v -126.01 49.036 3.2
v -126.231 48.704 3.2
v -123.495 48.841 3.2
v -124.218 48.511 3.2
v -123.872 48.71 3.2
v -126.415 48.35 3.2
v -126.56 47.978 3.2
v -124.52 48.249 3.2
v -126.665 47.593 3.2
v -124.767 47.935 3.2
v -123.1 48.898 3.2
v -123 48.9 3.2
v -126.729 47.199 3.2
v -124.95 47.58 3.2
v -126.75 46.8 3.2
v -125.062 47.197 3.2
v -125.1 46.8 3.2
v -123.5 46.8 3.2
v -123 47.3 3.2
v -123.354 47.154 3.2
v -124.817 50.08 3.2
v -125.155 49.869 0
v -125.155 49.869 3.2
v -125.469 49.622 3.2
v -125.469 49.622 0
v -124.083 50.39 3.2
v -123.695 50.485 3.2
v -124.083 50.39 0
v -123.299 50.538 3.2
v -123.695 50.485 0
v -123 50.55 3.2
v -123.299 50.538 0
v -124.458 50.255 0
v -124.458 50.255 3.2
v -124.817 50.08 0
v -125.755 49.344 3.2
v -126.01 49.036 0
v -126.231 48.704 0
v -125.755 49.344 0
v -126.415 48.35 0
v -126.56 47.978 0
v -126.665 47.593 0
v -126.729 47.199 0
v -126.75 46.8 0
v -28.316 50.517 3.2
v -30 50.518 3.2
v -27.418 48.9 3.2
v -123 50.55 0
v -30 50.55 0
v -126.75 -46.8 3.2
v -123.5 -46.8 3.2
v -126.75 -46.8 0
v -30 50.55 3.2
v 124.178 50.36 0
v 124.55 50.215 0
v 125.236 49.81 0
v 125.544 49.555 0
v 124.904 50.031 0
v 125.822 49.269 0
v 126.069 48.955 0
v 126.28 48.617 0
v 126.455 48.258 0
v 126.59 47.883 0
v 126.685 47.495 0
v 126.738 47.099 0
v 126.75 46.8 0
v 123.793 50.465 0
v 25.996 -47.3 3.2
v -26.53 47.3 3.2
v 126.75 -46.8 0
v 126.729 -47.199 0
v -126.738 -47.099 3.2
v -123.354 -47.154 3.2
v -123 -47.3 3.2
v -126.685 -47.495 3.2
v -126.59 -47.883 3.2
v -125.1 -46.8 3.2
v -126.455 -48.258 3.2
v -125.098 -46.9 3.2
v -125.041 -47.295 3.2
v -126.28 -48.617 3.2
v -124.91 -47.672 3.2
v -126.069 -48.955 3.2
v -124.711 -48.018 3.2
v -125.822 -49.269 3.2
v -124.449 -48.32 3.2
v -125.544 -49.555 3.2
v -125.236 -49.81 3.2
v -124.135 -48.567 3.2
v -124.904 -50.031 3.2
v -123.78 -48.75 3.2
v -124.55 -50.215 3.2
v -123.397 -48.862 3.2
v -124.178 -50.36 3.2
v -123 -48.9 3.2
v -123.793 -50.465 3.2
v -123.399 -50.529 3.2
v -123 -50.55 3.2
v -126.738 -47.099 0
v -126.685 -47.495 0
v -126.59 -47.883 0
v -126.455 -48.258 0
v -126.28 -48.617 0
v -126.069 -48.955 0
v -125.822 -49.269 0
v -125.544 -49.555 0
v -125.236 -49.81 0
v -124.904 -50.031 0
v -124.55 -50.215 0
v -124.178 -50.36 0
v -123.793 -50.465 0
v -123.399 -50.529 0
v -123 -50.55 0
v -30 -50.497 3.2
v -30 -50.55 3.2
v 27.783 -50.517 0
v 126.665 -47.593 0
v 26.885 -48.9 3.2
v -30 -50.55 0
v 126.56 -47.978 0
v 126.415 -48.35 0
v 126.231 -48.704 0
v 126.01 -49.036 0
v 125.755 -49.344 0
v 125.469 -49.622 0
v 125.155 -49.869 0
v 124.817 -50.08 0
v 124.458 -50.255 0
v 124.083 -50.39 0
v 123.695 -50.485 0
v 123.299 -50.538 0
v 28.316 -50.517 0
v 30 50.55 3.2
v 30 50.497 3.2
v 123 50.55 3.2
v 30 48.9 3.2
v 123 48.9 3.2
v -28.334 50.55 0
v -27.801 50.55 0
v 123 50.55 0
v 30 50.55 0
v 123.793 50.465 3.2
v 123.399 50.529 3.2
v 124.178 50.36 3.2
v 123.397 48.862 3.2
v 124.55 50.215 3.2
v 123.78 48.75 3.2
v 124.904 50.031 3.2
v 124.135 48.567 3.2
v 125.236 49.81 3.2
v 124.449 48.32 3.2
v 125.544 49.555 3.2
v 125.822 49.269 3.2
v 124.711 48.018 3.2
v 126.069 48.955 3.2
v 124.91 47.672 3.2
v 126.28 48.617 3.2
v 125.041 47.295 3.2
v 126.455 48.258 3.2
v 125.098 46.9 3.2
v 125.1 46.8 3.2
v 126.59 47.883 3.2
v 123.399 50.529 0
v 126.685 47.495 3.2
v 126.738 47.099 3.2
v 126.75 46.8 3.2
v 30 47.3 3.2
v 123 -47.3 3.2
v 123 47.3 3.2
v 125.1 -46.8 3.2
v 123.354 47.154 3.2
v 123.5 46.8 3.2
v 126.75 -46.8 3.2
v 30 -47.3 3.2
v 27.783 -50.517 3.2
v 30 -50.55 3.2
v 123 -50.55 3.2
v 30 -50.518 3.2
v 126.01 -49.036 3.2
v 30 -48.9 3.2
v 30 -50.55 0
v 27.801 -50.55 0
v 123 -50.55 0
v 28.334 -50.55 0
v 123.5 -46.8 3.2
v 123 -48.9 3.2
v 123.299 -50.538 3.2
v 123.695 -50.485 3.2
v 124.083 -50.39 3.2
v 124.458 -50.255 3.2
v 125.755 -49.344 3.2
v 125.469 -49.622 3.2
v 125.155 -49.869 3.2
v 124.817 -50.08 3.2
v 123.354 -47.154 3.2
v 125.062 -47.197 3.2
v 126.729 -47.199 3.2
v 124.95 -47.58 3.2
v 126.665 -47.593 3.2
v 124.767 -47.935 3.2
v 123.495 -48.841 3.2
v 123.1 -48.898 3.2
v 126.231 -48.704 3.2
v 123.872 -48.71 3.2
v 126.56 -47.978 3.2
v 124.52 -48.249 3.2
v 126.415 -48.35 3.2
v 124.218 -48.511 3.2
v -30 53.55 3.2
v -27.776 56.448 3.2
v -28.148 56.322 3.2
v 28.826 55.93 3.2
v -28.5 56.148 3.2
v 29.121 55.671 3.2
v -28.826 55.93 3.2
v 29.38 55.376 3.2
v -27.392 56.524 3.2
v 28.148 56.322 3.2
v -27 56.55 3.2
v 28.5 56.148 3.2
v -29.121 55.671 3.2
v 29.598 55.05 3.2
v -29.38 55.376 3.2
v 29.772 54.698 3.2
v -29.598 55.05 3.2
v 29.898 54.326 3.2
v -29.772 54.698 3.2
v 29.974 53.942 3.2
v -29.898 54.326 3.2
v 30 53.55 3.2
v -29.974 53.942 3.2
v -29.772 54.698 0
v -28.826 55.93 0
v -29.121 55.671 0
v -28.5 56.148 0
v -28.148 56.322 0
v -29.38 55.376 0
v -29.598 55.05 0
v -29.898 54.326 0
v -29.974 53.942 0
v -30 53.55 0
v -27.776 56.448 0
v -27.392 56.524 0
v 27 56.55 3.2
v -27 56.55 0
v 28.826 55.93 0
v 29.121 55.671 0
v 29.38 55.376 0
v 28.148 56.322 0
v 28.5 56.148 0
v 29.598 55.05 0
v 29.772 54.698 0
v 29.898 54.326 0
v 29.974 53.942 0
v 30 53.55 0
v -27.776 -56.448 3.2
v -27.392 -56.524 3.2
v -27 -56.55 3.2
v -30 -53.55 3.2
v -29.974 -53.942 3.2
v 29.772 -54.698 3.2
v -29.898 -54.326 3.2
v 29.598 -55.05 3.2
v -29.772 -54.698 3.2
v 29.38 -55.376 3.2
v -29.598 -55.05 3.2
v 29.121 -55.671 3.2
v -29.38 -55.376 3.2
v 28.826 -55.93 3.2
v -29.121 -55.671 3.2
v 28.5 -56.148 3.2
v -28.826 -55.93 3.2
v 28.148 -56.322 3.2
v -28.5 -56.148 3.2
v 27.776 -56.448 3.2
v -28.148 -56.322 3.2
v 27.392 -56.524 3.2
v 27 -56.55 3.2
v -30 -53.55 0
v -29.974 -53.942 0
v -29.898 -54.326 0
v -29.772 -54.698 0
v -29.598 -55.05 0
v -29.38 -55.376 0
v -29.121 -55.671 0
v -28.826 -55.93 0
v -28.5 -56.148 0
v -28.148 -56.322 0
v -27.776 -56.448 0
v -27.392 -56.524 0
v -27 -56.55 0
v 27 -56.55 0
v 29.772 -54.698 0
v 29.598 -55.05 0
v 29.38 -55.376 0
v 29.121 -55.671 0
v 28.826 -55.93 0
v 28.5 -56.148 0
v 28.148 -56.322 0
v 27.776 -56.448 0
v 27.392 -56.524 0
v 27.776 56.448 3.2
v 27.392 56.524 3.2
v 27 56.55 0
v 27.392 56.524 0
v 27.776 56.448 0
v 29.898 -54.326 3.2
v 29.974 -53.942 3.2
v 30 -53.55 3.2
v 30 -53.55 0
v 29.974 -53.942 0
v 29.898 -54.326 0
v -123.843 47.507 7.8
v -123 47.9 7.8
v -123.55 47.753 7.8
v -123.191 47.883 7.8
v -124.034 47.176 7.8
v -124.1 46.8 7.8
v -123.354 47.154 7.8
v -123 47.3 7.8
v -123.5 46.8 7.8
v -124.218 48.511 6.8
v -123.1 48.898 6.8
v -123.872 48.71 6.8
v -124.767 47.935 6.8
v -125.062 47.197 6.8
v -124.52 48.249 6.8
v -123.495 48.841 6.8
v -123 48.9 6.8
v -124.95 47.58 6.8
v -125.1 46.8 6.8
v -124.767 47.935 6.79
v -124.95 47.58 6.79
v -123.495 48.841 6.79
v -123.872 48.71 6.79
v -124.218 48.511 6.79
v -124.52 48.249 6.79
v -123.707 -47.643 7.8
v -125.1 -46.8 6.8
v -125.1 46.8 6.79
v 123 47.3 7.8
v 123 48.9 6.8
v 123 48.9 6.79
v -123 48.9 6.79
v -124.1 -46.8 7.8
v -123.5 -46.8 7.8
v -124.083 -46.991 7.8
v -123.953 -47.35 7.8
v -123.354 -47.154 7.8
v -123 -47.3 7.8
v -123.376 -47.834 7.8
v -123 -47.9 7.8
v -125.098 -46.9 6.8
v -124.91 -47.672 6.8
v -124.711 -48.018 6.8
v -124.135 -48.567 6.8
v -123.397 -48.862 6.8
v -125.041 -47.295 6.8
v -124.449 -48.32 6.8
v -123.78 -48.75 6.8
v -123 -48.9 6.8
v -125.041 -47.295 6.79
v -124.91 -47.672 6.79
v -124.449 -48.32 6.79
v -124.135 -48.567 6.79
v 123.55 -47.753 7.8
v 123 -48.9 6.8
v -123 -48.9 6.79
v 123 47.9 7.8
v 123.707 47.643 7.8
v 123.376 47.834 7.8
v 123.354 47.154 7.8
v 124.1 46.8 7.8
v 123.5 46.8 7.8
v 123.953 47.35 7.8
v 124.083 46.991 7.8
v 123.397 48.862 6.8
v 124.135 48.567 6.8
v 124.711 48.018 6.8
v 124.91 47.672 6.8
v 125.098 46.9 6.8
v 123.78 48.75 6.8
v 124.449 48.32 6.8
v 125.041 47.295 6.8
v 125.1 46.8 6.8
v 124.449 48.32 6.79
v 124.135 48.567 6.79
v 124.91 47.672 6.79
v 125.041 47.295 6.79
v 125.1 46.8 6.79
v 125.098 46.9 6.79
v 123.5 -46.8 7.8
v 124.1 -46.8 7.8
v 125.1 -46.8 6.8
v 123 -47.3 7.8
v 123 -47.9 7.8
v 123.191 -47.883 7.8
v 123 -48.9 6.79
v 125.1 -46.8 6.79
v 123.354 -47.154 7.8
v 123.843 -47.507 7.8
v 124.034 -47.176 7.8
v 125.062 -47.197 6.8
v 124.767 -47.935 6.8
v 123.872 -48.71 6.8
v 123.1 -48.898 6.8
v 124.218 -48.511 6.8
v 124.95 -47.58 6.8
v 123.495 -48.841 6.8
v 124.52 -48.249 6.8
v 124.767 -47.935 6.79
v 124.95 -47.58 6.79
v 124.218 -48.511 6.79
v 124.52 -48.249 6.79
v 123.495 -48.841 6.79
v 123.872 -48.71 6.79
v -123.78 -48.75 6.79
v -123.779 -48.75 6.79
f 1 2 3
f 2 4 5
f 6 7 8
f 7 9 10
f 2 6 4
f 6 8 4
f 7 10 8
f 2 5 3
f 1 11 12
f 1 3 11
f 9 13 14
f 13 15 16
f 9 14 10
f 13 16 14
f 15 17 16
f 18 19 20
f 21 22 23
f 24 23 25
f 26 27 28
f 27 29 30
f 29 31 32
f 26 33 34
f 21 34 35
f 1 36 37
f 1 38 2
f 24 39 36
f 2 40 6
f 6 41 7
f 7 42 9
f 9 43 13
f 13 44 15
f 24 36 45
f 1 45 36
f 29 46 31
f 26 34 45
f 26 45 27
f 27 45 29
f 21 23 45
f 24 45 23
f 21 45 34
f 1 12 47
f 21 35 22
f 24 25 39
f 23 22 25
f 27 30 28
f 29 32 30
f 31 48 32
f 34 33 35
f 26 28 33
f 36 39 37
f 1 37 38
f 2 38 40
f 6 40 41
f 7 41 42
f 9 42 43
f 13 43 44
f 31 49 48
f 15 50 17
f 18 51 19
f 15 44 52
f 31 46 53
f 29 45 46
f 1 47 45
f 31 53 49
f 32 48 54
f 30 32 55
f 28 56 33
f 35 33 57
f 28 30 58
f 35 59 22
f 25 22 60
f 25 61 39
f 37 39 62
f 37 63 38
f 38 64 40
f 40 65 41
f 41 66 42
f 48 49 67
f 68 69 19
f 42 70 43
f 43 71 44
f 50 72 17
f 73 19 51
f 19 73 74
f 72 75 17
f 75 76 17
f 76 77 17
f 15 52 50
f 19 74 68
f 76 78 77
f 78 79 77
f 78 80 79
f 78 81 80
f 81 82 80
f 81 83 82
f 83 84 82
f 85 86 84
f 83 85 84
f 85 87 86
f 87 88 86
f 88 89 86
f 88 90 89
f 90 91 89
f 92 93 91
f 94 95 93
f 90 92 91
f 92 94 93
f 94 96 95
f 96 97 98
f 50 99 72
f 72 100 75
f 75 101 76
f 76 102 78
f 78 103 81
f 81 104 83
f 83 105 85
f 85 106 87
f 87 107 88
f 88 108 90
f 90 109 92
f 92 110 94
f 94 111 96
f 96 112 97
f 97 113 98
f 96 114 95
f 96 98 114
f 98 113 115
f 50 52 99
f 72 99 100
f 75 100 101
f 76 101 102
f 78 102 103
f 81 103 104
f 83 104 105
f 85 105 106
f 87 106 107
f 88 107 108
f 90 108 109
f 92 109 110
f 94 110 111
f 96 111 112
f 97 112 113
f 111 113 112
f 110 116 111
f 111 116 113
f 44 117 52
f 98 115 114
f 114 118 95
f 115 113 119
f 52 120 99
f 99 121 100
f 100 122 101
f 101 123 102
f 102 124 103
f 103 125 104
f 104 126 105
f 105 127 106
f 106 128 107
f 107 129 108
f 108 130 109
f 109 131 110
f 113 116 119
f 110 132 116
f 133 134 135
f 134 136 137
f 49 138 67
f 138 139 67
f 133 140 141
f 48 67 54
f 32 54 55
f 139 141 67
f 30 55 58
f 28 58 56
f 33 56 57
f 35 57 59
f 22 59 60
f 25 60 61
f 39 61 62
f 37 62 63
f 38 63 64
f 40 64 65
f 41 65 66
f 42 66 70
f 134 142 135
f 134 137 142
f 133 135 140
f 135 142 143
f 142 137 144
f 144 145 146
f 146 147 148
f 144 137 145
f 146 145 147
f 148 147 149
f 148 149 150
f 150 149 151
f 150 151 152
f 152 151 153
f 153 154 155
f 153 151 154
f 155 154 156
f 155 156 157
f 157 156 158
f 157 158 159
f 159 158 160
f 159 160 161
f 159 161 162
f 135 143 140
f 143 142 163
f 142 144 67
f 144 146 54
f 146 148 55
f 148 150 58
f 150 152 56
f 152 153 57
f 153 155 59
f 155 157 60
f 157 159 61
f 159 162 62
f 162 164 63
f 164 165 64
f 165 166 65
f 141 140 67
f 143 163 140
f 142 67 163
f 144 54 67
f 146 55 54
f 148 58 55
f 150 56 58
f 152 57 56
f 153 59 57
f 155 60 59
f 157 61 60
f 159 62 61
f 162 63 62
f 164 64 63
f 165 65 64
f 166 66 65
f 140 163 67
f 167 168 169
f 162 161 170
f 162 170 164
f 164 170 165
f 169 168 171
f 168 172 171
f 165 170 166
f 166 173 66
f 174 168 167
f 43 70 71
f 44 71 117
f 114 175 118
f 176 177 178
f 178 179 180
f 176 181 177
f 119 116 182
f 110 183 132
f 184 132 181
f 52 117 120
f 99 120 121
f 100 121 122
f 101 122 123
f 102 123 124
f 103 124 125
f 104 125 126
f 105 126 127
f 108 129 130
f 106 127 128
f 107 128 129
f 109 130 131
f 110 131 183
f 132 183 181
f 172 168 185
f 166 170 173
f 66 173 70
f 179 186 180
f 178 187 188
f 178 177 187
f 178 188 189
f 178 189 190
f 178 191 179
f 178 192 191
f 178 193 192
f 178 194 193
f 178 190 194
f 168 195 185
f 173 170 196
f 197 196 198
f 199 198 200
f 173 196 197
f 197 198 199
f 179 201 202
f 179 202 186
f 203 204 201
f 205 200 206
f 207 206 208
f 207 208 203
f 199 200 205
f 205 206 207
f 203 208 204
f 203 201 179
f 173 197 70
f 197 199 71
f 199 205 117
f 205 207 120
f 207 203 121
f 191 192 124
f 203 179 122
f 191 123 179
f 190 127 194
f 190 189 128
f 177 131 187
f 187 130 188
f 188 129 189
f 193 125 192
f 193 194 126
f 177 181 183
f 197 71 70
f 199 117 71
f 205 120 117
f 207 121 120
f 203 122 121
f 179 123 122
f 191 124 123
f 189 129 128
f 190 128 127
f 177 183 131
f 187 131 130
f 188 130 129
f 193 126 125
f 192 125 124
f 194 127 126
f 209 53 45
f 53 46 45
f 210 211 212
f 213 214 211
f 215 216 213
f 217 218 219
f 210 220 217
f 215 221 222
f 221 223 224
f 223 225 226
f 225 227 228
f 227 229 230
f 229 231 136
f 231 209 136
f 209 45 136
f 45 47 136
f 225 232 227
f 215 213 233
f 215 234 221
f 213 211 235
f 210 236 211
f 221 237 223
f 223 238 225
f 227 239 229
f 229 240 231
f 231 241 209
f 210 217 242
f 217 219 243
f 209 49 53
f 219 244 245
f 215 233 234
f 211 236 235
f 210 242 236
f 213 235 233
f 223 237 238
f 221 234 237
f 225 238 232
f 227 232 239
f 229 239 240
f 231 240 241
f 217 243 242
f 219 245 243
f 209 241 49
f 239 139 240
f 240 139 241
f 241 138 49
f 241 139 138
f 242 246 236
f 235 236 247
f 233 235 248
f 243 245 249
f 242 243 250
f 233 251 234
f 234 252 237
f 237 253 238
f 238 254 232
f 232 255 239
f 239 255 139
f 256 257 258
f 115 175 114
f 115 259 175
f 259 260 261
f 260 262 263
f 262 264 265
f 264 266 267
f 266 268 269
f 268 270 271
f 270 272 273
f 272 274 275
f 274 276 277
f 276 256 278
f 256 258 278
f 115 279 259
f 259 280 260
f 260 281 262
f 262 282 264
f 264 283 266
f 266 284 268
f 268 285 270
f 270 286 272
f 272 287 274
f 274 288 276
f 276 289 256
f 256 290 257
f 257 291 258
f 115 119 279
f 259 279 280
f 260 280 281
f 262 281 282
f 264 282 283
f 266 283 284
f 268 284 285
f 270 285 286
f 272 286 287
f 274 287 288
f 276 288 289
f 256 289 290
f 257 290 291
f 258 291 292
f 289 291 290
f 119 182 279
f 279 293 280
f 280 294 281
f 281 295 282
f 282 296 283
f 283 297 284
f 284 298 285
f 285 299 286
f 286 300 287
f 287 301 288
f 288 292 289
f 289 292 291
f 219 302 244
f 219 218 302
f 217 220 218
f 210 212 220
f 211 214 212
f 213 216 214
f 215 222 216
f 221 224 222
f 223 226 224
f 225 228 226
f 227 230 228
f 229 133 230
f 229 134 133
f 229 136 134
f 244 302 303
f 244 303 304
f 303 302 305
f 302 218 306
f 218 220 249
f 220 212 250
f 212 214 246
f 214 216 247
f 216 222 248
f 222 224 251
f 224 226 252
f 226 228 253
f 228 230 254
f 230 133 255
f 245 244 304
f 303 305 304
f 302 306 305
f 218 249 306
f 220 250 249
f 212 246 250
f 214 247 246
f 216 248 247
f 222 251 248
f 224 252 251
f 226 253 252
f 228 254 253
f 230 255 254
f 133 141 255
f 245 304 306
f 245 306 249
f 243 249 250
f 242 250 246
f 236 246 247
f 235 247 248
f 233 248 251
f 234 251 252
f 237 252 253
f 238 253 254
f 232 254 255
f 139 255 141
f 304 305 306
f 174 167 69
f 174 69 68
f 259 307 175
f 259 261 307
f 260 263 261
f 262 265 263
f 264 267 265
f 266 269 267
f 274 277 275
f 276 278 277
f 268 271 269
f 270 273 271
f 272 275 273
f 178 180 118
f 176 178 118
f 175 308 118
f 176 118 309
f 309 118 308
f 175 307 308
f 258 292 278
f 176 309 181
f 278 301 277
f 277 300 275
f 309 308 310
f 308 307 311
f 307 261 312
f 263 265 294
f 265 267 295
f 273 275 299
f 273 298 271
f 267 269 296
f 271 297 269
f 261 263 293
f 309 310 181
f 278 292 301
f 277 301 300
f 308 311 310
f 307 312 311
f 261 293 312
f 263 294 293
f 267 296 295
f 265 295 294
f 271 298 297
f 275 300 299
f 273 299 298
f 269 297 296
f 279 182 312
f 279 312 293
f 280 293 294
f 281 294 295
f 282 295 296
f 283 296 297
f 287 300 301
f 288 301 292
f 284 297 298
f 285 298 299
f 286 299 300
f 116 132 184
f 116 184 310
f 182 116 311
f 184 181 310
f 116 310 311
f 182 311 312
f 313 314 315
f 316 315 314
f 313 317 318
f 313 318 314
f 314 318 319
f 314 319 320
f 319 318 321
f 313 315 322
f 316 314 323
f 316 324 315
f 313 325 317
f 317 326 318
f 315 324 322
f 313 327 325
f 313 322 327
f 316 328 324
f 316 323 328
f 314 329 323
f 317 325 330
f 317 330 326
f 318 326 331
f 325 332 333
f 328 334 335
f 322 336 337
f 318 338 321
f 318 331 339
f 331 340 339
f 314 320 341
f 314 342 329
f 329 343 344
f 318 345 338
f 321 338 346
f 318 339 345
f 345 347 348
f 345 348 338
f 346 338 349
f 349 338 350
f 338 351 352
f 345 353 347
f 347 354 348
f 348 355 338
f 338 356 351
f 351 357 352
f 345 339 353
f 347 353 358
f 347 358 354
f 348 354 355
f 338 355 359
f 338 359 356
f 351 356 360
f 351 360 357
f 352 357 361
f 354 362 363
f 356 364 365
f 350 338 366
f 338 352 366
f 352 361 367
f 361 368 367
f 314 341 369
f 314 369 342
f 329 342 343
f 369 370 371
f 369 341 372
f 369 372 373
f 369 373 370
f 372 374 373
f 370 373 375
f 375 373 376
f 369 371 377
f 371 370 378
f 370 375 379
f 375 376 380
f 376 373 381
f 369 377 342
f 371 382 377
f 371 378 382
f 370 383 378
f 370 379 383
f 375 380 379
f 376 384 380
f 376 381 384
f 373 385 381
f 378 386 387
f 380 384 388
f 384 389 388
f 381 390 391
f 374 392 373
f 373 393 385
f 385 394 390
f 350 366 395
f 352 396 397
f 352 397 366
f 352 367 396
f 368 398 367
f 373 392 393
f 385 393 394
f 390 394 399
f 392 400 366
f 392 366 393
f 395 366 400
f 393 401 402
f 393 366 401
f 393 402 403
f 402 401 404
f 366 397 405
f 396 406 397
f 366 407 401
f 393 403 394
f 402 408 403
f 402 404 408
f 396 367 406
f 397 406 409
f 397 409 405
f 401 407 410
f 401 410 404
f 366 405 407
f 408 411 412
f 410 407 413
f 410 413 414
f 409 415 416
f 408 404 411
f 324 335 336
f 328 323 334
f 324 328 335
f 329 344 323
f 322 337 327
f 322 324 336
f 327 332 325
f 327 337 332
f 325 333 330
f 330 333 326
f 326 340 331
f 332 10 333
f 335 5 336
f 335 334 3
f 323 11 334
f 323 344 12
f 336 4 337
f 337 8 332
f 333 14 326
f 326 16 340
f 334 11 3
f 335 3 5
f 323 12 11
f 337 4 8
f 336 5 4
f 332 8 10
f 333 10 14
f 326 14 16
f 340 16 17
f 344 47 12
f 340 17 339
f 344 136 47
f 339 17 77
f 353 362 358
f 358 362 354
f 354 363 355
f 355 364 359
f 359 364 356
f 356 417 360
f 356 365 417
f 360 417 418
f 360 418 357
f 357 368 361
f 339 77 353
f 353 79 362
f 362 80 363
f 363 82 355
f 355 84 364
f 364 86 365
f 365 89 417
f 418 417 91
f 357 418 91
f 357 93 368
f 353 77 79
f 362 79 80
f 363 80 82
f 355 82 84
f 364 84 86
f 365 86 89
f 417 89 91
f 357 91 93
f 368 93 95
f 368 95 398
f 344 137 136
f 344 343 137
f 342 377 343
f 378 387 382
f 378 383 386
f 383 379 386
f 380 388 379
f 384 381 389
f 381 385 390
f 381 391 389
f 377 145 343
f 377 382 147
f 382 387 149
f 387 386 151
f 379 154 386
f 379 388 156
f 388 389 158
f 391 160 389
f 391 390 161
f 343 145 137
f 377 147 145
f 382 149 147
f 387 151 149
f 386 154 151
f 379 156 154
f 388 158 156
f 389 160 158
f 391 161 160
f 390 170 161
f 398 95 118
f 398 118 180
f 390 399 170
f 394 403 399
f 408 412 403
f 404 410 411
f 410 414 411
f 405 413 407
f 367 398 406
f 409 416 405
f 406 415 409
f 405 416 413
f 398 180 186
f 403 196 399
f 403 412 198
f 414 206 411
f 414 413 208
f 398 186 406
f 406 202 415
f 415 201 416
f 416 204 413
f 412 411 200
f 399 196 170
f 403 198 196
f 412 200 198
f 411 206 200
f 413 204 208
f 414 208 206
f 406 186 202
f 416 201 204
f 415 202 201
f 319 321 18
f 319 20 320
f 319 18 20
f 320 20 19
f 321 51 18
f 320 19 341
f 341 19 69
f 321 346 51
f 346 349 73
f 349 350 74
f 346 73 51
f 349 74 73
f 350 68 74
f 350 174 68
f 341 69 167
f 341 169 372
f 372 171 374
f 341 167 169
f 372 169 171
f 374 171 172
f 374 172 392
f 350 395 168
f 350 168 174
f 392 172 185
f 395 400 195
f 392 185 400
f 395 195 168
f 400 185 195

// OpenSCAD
// file: photo_box_001.scad
// photo_box — shipping box for photos, with a proud inset lid
//
// Two parts, single-colour PLA, both print without supports.
//   box  prints open-face-up, floor on the bed
//   lid  prints top-face-down, skirt pointing up
//
// The four numbers below are the ones to change. Everything else is
// derived, so the model stays coherent at any size.

// ---- outside envelope (lid on) ----------------------------------------
box_w = 254;      // 10"    width
box_d = 101.6;    // 4"     depth
box_h = 158.75;   // 6.25"  height, lid seated

// ---- thicknesses ------------------------------------------------------
wall_t  = 2.0;    // side walls        (5 perimeters @ 0.4)
floor_t = 2.4;    // box floor         (6 perimeters)
lid_t   = 3.2;    // lid plate         (8 perimeters)

// ---- lid interface ----------------------------------------------------
rabbet_h = 5.0;   // how far the ledge sits below the rim
ledge_w  = 2.0;   // horizontal width of the ledge
rim_t    = 1.6;   // standing rim above the ledge (4 perimeters)
ramp_h   = 2.4;   // ramp thickening the wall into the rabbet zone. Rises 2.4
                  // while growing 1.6 inward — 34 deg off vertical, so it sits
                  // clear of the 45 deg self-support limit rather than on it.
skirt_w  = 1.6;   // lid skirt thickness (4 perimeters)
clr      = 0.3;   // lateral clearance, skirt to rim (PLA)
seat_gap = 0.4;   // skirt clears the ledge — the rim is the seat, not the ledge

// ---- cosmetic / ergonomic --------------------------------------------
corner_r   = 4.0;  // outside corner radius
lid_relief = 0.25; // lid plate inset from the outer face, per side
skirt_cham = 1.0;  // 45 deg lead-in so the lid self-centres on the way in
foot_cham  = 0.6;  // bottom outer edge — chamfer, not a round (elephant's foot)
grip_tab   = 6.0;  // lid grab tabs on front/back; set 0 for a plain rectangle
grip_tab_w = 60.0;

// ---- output -----------------------------------------------------------
part = "both";     // "box" | "lid" | "both"

$fa = 2;
$fs = 0.4;

// ---- derived ----------------------------------------------------------
body_h   = box_h - lid_t;        // rim top: the lid plate sits on this
ledge_z  = body_h - rabbet_h;    // up-facing ledge surface
ramp_z   = ledge_z - ramp_h;     // where the wall starts thickening
top_wall = rim_t + ledge_w;      // wall thickness through the rabbet zone
skirt_h  = rabbet_h - seat_gap;  // skirt stops short of the ledge

// Rounded-rectangle prism, centred in x/y, rising from z = 0.
module rrect_prism(w, d, r, h) {
    rr = max(min(r, w / 2 - 0.01, d / 2 - 0.01), 0.01);
    linear_extrude(height = h)
        offset(r = rr)
            square([w - 2 * rr, d - 2 * rr], center = true);
}

// ---- box --------------------------------------------------------------

module box_outer() {
    // Chamfered foot, then a straight prism the rest of the way up.
    hull() {
        rrect_prism(box_w - 2 * foot_cham, box_d - 2 * foot_cham,
                    corner_r - foot_cham, 0.01);
        translate([0, 0, foot_cham]) rrect_prism(box_w, box_d, corner_r, 0.01);
    }
    translate([0, 0, foot_cham])
        rrect_prism(box_w, box_d, corner_r, body_h - foot_cham);
}

// The cavity is cut in three stacked pieces. Each one is *wider* than the
// piece below it or tapers into it, so every newly exposed surface faces up
// or sits at 45 deg — nothing to support.
module box_cavity() {
    // Main volume, floor up to the ramp.
    translate([0, 0, floor_t])
        rrect_prism(box_w - 2 * wall_t, box_d - 2 * wall_t,
                    corner_r - wall_t, ramp_z - floor_t + 0.01);

    // 45 deg ramp: the wall thickens inward from wall_t to top_wall, giving
    // the rabbet something solid to be cut out of and hooping the top of a
    // large thin-walled box.
    hull() {
        translate([0, 0, ramp_z])
            rrect_prism(box_w - 2 * wall_t, box_d - 2 * wall_t,
                        corner_r - wall_t, 0.01);
        translate([0, 0, ledge_z - 0.01])
            rrect_prism(box_w - 2 * top_wall, box_d - 2 * top_wall,
                        corner_r - top_wall, 0.01);
    }

    // Rabbet: a wider cut above the ledge leaves the ledge as an up-facing
    // shelf and the rim as a standing fin.
    translate([0, 0, ledge_z])
        rrect_prism(box_w - 2 * rim_t, box_d - 2 * rim_t,
                    corner_r - rim_t, rabbet_h + 1);
}

module box() {
    difference() {
        box_outer();
        box_cavity();
    }
}

// ---- lid --------------------------------------------------------------
// Modelled in the assembled orientation: plate on top, skirt hanging down
// into the rabbet. Flipped for printing at the bottom of the file.

skirt_ow = box_w - 2 * rim_t - 2 * clr;
skirt_od = box_d - 2 * rim_t - 2 * clr;
skirt_or = corner_r - rim_t - clr;
skirt_z0 = body_h - skirt_h;

module lid() {
    // Plate, plus grab tabs overhanging the front and back walls.
    translate([0, 0, body_h]) {
        rrect_prism(box_w - 2 * lid_relief, box_d - 2 * lid_relief,
                    corner_r - lid_relief, lid_t);
        if (grip_tab > 0)
            rrect_prism(grip_tab_w,
                        box_d - 2 * lid_relief + 2 * grip_tab, 3, lid_t);
    }

    // Skirt: lateral register only. Its outer face runs against the rim's
    // inner face; a 45 deg lead-in lets it find the opening on the way down.
    difference() {
        union() {
            hull() {
                translate([0, 0, skirt_z0])
                    rrect_prism(skirt_ow - 2 * skirt_cham,
                                skirt_od - 2 * skirt_cham,
                                skirt_or - skirt_cham, 0.01);
                translate([0, 0, skirt_z0 + skirt_cham])
                    rrect_prism(skirt_ow, skirt_od, skirt_or, 0.01);
            }
            translate([0, 0, skirt_z0 + skirt_cham])
                rrect_prism(skirt_ow, skirt_od, skirt_or,
                            skirt_h - skirt_cham + 0.01);
        }
        translate([0, 0, skirt_z0 - 1])
            rrect_prism(skirt_ow - 2 * skirt_w, skirt_od - 2 * skirt_w,
                        skirt_or - skirt_w, skirt_h + 2);
    }
}

// Lid rotated onto its print orientation: visible face down on the bed.
module lid_printed() {
    translate([0, 0, box_h]) rotate([180, 0, 0]) lid();
}

// ---- output -----------------------------------------------------------

if (part == "box") {
    box();
} else if (part == "lid") {
    lid_printed();
} else if (part == "both") {
    // Exploded preview — lid lifted clear so the rabbet is visible.
    box();
    translate([0, 0, 40]) lid();
}
// Any other value emits nothing, so this file can be included and
// section-cut for debugging without drawing the whole model.
// main file
// Lid-only print layout (visible face down on the bed, skirt up, support-free).
// The trailing assignment overrides part="both" from the include.
include <photo_box_001.scad>
part = "lid";
